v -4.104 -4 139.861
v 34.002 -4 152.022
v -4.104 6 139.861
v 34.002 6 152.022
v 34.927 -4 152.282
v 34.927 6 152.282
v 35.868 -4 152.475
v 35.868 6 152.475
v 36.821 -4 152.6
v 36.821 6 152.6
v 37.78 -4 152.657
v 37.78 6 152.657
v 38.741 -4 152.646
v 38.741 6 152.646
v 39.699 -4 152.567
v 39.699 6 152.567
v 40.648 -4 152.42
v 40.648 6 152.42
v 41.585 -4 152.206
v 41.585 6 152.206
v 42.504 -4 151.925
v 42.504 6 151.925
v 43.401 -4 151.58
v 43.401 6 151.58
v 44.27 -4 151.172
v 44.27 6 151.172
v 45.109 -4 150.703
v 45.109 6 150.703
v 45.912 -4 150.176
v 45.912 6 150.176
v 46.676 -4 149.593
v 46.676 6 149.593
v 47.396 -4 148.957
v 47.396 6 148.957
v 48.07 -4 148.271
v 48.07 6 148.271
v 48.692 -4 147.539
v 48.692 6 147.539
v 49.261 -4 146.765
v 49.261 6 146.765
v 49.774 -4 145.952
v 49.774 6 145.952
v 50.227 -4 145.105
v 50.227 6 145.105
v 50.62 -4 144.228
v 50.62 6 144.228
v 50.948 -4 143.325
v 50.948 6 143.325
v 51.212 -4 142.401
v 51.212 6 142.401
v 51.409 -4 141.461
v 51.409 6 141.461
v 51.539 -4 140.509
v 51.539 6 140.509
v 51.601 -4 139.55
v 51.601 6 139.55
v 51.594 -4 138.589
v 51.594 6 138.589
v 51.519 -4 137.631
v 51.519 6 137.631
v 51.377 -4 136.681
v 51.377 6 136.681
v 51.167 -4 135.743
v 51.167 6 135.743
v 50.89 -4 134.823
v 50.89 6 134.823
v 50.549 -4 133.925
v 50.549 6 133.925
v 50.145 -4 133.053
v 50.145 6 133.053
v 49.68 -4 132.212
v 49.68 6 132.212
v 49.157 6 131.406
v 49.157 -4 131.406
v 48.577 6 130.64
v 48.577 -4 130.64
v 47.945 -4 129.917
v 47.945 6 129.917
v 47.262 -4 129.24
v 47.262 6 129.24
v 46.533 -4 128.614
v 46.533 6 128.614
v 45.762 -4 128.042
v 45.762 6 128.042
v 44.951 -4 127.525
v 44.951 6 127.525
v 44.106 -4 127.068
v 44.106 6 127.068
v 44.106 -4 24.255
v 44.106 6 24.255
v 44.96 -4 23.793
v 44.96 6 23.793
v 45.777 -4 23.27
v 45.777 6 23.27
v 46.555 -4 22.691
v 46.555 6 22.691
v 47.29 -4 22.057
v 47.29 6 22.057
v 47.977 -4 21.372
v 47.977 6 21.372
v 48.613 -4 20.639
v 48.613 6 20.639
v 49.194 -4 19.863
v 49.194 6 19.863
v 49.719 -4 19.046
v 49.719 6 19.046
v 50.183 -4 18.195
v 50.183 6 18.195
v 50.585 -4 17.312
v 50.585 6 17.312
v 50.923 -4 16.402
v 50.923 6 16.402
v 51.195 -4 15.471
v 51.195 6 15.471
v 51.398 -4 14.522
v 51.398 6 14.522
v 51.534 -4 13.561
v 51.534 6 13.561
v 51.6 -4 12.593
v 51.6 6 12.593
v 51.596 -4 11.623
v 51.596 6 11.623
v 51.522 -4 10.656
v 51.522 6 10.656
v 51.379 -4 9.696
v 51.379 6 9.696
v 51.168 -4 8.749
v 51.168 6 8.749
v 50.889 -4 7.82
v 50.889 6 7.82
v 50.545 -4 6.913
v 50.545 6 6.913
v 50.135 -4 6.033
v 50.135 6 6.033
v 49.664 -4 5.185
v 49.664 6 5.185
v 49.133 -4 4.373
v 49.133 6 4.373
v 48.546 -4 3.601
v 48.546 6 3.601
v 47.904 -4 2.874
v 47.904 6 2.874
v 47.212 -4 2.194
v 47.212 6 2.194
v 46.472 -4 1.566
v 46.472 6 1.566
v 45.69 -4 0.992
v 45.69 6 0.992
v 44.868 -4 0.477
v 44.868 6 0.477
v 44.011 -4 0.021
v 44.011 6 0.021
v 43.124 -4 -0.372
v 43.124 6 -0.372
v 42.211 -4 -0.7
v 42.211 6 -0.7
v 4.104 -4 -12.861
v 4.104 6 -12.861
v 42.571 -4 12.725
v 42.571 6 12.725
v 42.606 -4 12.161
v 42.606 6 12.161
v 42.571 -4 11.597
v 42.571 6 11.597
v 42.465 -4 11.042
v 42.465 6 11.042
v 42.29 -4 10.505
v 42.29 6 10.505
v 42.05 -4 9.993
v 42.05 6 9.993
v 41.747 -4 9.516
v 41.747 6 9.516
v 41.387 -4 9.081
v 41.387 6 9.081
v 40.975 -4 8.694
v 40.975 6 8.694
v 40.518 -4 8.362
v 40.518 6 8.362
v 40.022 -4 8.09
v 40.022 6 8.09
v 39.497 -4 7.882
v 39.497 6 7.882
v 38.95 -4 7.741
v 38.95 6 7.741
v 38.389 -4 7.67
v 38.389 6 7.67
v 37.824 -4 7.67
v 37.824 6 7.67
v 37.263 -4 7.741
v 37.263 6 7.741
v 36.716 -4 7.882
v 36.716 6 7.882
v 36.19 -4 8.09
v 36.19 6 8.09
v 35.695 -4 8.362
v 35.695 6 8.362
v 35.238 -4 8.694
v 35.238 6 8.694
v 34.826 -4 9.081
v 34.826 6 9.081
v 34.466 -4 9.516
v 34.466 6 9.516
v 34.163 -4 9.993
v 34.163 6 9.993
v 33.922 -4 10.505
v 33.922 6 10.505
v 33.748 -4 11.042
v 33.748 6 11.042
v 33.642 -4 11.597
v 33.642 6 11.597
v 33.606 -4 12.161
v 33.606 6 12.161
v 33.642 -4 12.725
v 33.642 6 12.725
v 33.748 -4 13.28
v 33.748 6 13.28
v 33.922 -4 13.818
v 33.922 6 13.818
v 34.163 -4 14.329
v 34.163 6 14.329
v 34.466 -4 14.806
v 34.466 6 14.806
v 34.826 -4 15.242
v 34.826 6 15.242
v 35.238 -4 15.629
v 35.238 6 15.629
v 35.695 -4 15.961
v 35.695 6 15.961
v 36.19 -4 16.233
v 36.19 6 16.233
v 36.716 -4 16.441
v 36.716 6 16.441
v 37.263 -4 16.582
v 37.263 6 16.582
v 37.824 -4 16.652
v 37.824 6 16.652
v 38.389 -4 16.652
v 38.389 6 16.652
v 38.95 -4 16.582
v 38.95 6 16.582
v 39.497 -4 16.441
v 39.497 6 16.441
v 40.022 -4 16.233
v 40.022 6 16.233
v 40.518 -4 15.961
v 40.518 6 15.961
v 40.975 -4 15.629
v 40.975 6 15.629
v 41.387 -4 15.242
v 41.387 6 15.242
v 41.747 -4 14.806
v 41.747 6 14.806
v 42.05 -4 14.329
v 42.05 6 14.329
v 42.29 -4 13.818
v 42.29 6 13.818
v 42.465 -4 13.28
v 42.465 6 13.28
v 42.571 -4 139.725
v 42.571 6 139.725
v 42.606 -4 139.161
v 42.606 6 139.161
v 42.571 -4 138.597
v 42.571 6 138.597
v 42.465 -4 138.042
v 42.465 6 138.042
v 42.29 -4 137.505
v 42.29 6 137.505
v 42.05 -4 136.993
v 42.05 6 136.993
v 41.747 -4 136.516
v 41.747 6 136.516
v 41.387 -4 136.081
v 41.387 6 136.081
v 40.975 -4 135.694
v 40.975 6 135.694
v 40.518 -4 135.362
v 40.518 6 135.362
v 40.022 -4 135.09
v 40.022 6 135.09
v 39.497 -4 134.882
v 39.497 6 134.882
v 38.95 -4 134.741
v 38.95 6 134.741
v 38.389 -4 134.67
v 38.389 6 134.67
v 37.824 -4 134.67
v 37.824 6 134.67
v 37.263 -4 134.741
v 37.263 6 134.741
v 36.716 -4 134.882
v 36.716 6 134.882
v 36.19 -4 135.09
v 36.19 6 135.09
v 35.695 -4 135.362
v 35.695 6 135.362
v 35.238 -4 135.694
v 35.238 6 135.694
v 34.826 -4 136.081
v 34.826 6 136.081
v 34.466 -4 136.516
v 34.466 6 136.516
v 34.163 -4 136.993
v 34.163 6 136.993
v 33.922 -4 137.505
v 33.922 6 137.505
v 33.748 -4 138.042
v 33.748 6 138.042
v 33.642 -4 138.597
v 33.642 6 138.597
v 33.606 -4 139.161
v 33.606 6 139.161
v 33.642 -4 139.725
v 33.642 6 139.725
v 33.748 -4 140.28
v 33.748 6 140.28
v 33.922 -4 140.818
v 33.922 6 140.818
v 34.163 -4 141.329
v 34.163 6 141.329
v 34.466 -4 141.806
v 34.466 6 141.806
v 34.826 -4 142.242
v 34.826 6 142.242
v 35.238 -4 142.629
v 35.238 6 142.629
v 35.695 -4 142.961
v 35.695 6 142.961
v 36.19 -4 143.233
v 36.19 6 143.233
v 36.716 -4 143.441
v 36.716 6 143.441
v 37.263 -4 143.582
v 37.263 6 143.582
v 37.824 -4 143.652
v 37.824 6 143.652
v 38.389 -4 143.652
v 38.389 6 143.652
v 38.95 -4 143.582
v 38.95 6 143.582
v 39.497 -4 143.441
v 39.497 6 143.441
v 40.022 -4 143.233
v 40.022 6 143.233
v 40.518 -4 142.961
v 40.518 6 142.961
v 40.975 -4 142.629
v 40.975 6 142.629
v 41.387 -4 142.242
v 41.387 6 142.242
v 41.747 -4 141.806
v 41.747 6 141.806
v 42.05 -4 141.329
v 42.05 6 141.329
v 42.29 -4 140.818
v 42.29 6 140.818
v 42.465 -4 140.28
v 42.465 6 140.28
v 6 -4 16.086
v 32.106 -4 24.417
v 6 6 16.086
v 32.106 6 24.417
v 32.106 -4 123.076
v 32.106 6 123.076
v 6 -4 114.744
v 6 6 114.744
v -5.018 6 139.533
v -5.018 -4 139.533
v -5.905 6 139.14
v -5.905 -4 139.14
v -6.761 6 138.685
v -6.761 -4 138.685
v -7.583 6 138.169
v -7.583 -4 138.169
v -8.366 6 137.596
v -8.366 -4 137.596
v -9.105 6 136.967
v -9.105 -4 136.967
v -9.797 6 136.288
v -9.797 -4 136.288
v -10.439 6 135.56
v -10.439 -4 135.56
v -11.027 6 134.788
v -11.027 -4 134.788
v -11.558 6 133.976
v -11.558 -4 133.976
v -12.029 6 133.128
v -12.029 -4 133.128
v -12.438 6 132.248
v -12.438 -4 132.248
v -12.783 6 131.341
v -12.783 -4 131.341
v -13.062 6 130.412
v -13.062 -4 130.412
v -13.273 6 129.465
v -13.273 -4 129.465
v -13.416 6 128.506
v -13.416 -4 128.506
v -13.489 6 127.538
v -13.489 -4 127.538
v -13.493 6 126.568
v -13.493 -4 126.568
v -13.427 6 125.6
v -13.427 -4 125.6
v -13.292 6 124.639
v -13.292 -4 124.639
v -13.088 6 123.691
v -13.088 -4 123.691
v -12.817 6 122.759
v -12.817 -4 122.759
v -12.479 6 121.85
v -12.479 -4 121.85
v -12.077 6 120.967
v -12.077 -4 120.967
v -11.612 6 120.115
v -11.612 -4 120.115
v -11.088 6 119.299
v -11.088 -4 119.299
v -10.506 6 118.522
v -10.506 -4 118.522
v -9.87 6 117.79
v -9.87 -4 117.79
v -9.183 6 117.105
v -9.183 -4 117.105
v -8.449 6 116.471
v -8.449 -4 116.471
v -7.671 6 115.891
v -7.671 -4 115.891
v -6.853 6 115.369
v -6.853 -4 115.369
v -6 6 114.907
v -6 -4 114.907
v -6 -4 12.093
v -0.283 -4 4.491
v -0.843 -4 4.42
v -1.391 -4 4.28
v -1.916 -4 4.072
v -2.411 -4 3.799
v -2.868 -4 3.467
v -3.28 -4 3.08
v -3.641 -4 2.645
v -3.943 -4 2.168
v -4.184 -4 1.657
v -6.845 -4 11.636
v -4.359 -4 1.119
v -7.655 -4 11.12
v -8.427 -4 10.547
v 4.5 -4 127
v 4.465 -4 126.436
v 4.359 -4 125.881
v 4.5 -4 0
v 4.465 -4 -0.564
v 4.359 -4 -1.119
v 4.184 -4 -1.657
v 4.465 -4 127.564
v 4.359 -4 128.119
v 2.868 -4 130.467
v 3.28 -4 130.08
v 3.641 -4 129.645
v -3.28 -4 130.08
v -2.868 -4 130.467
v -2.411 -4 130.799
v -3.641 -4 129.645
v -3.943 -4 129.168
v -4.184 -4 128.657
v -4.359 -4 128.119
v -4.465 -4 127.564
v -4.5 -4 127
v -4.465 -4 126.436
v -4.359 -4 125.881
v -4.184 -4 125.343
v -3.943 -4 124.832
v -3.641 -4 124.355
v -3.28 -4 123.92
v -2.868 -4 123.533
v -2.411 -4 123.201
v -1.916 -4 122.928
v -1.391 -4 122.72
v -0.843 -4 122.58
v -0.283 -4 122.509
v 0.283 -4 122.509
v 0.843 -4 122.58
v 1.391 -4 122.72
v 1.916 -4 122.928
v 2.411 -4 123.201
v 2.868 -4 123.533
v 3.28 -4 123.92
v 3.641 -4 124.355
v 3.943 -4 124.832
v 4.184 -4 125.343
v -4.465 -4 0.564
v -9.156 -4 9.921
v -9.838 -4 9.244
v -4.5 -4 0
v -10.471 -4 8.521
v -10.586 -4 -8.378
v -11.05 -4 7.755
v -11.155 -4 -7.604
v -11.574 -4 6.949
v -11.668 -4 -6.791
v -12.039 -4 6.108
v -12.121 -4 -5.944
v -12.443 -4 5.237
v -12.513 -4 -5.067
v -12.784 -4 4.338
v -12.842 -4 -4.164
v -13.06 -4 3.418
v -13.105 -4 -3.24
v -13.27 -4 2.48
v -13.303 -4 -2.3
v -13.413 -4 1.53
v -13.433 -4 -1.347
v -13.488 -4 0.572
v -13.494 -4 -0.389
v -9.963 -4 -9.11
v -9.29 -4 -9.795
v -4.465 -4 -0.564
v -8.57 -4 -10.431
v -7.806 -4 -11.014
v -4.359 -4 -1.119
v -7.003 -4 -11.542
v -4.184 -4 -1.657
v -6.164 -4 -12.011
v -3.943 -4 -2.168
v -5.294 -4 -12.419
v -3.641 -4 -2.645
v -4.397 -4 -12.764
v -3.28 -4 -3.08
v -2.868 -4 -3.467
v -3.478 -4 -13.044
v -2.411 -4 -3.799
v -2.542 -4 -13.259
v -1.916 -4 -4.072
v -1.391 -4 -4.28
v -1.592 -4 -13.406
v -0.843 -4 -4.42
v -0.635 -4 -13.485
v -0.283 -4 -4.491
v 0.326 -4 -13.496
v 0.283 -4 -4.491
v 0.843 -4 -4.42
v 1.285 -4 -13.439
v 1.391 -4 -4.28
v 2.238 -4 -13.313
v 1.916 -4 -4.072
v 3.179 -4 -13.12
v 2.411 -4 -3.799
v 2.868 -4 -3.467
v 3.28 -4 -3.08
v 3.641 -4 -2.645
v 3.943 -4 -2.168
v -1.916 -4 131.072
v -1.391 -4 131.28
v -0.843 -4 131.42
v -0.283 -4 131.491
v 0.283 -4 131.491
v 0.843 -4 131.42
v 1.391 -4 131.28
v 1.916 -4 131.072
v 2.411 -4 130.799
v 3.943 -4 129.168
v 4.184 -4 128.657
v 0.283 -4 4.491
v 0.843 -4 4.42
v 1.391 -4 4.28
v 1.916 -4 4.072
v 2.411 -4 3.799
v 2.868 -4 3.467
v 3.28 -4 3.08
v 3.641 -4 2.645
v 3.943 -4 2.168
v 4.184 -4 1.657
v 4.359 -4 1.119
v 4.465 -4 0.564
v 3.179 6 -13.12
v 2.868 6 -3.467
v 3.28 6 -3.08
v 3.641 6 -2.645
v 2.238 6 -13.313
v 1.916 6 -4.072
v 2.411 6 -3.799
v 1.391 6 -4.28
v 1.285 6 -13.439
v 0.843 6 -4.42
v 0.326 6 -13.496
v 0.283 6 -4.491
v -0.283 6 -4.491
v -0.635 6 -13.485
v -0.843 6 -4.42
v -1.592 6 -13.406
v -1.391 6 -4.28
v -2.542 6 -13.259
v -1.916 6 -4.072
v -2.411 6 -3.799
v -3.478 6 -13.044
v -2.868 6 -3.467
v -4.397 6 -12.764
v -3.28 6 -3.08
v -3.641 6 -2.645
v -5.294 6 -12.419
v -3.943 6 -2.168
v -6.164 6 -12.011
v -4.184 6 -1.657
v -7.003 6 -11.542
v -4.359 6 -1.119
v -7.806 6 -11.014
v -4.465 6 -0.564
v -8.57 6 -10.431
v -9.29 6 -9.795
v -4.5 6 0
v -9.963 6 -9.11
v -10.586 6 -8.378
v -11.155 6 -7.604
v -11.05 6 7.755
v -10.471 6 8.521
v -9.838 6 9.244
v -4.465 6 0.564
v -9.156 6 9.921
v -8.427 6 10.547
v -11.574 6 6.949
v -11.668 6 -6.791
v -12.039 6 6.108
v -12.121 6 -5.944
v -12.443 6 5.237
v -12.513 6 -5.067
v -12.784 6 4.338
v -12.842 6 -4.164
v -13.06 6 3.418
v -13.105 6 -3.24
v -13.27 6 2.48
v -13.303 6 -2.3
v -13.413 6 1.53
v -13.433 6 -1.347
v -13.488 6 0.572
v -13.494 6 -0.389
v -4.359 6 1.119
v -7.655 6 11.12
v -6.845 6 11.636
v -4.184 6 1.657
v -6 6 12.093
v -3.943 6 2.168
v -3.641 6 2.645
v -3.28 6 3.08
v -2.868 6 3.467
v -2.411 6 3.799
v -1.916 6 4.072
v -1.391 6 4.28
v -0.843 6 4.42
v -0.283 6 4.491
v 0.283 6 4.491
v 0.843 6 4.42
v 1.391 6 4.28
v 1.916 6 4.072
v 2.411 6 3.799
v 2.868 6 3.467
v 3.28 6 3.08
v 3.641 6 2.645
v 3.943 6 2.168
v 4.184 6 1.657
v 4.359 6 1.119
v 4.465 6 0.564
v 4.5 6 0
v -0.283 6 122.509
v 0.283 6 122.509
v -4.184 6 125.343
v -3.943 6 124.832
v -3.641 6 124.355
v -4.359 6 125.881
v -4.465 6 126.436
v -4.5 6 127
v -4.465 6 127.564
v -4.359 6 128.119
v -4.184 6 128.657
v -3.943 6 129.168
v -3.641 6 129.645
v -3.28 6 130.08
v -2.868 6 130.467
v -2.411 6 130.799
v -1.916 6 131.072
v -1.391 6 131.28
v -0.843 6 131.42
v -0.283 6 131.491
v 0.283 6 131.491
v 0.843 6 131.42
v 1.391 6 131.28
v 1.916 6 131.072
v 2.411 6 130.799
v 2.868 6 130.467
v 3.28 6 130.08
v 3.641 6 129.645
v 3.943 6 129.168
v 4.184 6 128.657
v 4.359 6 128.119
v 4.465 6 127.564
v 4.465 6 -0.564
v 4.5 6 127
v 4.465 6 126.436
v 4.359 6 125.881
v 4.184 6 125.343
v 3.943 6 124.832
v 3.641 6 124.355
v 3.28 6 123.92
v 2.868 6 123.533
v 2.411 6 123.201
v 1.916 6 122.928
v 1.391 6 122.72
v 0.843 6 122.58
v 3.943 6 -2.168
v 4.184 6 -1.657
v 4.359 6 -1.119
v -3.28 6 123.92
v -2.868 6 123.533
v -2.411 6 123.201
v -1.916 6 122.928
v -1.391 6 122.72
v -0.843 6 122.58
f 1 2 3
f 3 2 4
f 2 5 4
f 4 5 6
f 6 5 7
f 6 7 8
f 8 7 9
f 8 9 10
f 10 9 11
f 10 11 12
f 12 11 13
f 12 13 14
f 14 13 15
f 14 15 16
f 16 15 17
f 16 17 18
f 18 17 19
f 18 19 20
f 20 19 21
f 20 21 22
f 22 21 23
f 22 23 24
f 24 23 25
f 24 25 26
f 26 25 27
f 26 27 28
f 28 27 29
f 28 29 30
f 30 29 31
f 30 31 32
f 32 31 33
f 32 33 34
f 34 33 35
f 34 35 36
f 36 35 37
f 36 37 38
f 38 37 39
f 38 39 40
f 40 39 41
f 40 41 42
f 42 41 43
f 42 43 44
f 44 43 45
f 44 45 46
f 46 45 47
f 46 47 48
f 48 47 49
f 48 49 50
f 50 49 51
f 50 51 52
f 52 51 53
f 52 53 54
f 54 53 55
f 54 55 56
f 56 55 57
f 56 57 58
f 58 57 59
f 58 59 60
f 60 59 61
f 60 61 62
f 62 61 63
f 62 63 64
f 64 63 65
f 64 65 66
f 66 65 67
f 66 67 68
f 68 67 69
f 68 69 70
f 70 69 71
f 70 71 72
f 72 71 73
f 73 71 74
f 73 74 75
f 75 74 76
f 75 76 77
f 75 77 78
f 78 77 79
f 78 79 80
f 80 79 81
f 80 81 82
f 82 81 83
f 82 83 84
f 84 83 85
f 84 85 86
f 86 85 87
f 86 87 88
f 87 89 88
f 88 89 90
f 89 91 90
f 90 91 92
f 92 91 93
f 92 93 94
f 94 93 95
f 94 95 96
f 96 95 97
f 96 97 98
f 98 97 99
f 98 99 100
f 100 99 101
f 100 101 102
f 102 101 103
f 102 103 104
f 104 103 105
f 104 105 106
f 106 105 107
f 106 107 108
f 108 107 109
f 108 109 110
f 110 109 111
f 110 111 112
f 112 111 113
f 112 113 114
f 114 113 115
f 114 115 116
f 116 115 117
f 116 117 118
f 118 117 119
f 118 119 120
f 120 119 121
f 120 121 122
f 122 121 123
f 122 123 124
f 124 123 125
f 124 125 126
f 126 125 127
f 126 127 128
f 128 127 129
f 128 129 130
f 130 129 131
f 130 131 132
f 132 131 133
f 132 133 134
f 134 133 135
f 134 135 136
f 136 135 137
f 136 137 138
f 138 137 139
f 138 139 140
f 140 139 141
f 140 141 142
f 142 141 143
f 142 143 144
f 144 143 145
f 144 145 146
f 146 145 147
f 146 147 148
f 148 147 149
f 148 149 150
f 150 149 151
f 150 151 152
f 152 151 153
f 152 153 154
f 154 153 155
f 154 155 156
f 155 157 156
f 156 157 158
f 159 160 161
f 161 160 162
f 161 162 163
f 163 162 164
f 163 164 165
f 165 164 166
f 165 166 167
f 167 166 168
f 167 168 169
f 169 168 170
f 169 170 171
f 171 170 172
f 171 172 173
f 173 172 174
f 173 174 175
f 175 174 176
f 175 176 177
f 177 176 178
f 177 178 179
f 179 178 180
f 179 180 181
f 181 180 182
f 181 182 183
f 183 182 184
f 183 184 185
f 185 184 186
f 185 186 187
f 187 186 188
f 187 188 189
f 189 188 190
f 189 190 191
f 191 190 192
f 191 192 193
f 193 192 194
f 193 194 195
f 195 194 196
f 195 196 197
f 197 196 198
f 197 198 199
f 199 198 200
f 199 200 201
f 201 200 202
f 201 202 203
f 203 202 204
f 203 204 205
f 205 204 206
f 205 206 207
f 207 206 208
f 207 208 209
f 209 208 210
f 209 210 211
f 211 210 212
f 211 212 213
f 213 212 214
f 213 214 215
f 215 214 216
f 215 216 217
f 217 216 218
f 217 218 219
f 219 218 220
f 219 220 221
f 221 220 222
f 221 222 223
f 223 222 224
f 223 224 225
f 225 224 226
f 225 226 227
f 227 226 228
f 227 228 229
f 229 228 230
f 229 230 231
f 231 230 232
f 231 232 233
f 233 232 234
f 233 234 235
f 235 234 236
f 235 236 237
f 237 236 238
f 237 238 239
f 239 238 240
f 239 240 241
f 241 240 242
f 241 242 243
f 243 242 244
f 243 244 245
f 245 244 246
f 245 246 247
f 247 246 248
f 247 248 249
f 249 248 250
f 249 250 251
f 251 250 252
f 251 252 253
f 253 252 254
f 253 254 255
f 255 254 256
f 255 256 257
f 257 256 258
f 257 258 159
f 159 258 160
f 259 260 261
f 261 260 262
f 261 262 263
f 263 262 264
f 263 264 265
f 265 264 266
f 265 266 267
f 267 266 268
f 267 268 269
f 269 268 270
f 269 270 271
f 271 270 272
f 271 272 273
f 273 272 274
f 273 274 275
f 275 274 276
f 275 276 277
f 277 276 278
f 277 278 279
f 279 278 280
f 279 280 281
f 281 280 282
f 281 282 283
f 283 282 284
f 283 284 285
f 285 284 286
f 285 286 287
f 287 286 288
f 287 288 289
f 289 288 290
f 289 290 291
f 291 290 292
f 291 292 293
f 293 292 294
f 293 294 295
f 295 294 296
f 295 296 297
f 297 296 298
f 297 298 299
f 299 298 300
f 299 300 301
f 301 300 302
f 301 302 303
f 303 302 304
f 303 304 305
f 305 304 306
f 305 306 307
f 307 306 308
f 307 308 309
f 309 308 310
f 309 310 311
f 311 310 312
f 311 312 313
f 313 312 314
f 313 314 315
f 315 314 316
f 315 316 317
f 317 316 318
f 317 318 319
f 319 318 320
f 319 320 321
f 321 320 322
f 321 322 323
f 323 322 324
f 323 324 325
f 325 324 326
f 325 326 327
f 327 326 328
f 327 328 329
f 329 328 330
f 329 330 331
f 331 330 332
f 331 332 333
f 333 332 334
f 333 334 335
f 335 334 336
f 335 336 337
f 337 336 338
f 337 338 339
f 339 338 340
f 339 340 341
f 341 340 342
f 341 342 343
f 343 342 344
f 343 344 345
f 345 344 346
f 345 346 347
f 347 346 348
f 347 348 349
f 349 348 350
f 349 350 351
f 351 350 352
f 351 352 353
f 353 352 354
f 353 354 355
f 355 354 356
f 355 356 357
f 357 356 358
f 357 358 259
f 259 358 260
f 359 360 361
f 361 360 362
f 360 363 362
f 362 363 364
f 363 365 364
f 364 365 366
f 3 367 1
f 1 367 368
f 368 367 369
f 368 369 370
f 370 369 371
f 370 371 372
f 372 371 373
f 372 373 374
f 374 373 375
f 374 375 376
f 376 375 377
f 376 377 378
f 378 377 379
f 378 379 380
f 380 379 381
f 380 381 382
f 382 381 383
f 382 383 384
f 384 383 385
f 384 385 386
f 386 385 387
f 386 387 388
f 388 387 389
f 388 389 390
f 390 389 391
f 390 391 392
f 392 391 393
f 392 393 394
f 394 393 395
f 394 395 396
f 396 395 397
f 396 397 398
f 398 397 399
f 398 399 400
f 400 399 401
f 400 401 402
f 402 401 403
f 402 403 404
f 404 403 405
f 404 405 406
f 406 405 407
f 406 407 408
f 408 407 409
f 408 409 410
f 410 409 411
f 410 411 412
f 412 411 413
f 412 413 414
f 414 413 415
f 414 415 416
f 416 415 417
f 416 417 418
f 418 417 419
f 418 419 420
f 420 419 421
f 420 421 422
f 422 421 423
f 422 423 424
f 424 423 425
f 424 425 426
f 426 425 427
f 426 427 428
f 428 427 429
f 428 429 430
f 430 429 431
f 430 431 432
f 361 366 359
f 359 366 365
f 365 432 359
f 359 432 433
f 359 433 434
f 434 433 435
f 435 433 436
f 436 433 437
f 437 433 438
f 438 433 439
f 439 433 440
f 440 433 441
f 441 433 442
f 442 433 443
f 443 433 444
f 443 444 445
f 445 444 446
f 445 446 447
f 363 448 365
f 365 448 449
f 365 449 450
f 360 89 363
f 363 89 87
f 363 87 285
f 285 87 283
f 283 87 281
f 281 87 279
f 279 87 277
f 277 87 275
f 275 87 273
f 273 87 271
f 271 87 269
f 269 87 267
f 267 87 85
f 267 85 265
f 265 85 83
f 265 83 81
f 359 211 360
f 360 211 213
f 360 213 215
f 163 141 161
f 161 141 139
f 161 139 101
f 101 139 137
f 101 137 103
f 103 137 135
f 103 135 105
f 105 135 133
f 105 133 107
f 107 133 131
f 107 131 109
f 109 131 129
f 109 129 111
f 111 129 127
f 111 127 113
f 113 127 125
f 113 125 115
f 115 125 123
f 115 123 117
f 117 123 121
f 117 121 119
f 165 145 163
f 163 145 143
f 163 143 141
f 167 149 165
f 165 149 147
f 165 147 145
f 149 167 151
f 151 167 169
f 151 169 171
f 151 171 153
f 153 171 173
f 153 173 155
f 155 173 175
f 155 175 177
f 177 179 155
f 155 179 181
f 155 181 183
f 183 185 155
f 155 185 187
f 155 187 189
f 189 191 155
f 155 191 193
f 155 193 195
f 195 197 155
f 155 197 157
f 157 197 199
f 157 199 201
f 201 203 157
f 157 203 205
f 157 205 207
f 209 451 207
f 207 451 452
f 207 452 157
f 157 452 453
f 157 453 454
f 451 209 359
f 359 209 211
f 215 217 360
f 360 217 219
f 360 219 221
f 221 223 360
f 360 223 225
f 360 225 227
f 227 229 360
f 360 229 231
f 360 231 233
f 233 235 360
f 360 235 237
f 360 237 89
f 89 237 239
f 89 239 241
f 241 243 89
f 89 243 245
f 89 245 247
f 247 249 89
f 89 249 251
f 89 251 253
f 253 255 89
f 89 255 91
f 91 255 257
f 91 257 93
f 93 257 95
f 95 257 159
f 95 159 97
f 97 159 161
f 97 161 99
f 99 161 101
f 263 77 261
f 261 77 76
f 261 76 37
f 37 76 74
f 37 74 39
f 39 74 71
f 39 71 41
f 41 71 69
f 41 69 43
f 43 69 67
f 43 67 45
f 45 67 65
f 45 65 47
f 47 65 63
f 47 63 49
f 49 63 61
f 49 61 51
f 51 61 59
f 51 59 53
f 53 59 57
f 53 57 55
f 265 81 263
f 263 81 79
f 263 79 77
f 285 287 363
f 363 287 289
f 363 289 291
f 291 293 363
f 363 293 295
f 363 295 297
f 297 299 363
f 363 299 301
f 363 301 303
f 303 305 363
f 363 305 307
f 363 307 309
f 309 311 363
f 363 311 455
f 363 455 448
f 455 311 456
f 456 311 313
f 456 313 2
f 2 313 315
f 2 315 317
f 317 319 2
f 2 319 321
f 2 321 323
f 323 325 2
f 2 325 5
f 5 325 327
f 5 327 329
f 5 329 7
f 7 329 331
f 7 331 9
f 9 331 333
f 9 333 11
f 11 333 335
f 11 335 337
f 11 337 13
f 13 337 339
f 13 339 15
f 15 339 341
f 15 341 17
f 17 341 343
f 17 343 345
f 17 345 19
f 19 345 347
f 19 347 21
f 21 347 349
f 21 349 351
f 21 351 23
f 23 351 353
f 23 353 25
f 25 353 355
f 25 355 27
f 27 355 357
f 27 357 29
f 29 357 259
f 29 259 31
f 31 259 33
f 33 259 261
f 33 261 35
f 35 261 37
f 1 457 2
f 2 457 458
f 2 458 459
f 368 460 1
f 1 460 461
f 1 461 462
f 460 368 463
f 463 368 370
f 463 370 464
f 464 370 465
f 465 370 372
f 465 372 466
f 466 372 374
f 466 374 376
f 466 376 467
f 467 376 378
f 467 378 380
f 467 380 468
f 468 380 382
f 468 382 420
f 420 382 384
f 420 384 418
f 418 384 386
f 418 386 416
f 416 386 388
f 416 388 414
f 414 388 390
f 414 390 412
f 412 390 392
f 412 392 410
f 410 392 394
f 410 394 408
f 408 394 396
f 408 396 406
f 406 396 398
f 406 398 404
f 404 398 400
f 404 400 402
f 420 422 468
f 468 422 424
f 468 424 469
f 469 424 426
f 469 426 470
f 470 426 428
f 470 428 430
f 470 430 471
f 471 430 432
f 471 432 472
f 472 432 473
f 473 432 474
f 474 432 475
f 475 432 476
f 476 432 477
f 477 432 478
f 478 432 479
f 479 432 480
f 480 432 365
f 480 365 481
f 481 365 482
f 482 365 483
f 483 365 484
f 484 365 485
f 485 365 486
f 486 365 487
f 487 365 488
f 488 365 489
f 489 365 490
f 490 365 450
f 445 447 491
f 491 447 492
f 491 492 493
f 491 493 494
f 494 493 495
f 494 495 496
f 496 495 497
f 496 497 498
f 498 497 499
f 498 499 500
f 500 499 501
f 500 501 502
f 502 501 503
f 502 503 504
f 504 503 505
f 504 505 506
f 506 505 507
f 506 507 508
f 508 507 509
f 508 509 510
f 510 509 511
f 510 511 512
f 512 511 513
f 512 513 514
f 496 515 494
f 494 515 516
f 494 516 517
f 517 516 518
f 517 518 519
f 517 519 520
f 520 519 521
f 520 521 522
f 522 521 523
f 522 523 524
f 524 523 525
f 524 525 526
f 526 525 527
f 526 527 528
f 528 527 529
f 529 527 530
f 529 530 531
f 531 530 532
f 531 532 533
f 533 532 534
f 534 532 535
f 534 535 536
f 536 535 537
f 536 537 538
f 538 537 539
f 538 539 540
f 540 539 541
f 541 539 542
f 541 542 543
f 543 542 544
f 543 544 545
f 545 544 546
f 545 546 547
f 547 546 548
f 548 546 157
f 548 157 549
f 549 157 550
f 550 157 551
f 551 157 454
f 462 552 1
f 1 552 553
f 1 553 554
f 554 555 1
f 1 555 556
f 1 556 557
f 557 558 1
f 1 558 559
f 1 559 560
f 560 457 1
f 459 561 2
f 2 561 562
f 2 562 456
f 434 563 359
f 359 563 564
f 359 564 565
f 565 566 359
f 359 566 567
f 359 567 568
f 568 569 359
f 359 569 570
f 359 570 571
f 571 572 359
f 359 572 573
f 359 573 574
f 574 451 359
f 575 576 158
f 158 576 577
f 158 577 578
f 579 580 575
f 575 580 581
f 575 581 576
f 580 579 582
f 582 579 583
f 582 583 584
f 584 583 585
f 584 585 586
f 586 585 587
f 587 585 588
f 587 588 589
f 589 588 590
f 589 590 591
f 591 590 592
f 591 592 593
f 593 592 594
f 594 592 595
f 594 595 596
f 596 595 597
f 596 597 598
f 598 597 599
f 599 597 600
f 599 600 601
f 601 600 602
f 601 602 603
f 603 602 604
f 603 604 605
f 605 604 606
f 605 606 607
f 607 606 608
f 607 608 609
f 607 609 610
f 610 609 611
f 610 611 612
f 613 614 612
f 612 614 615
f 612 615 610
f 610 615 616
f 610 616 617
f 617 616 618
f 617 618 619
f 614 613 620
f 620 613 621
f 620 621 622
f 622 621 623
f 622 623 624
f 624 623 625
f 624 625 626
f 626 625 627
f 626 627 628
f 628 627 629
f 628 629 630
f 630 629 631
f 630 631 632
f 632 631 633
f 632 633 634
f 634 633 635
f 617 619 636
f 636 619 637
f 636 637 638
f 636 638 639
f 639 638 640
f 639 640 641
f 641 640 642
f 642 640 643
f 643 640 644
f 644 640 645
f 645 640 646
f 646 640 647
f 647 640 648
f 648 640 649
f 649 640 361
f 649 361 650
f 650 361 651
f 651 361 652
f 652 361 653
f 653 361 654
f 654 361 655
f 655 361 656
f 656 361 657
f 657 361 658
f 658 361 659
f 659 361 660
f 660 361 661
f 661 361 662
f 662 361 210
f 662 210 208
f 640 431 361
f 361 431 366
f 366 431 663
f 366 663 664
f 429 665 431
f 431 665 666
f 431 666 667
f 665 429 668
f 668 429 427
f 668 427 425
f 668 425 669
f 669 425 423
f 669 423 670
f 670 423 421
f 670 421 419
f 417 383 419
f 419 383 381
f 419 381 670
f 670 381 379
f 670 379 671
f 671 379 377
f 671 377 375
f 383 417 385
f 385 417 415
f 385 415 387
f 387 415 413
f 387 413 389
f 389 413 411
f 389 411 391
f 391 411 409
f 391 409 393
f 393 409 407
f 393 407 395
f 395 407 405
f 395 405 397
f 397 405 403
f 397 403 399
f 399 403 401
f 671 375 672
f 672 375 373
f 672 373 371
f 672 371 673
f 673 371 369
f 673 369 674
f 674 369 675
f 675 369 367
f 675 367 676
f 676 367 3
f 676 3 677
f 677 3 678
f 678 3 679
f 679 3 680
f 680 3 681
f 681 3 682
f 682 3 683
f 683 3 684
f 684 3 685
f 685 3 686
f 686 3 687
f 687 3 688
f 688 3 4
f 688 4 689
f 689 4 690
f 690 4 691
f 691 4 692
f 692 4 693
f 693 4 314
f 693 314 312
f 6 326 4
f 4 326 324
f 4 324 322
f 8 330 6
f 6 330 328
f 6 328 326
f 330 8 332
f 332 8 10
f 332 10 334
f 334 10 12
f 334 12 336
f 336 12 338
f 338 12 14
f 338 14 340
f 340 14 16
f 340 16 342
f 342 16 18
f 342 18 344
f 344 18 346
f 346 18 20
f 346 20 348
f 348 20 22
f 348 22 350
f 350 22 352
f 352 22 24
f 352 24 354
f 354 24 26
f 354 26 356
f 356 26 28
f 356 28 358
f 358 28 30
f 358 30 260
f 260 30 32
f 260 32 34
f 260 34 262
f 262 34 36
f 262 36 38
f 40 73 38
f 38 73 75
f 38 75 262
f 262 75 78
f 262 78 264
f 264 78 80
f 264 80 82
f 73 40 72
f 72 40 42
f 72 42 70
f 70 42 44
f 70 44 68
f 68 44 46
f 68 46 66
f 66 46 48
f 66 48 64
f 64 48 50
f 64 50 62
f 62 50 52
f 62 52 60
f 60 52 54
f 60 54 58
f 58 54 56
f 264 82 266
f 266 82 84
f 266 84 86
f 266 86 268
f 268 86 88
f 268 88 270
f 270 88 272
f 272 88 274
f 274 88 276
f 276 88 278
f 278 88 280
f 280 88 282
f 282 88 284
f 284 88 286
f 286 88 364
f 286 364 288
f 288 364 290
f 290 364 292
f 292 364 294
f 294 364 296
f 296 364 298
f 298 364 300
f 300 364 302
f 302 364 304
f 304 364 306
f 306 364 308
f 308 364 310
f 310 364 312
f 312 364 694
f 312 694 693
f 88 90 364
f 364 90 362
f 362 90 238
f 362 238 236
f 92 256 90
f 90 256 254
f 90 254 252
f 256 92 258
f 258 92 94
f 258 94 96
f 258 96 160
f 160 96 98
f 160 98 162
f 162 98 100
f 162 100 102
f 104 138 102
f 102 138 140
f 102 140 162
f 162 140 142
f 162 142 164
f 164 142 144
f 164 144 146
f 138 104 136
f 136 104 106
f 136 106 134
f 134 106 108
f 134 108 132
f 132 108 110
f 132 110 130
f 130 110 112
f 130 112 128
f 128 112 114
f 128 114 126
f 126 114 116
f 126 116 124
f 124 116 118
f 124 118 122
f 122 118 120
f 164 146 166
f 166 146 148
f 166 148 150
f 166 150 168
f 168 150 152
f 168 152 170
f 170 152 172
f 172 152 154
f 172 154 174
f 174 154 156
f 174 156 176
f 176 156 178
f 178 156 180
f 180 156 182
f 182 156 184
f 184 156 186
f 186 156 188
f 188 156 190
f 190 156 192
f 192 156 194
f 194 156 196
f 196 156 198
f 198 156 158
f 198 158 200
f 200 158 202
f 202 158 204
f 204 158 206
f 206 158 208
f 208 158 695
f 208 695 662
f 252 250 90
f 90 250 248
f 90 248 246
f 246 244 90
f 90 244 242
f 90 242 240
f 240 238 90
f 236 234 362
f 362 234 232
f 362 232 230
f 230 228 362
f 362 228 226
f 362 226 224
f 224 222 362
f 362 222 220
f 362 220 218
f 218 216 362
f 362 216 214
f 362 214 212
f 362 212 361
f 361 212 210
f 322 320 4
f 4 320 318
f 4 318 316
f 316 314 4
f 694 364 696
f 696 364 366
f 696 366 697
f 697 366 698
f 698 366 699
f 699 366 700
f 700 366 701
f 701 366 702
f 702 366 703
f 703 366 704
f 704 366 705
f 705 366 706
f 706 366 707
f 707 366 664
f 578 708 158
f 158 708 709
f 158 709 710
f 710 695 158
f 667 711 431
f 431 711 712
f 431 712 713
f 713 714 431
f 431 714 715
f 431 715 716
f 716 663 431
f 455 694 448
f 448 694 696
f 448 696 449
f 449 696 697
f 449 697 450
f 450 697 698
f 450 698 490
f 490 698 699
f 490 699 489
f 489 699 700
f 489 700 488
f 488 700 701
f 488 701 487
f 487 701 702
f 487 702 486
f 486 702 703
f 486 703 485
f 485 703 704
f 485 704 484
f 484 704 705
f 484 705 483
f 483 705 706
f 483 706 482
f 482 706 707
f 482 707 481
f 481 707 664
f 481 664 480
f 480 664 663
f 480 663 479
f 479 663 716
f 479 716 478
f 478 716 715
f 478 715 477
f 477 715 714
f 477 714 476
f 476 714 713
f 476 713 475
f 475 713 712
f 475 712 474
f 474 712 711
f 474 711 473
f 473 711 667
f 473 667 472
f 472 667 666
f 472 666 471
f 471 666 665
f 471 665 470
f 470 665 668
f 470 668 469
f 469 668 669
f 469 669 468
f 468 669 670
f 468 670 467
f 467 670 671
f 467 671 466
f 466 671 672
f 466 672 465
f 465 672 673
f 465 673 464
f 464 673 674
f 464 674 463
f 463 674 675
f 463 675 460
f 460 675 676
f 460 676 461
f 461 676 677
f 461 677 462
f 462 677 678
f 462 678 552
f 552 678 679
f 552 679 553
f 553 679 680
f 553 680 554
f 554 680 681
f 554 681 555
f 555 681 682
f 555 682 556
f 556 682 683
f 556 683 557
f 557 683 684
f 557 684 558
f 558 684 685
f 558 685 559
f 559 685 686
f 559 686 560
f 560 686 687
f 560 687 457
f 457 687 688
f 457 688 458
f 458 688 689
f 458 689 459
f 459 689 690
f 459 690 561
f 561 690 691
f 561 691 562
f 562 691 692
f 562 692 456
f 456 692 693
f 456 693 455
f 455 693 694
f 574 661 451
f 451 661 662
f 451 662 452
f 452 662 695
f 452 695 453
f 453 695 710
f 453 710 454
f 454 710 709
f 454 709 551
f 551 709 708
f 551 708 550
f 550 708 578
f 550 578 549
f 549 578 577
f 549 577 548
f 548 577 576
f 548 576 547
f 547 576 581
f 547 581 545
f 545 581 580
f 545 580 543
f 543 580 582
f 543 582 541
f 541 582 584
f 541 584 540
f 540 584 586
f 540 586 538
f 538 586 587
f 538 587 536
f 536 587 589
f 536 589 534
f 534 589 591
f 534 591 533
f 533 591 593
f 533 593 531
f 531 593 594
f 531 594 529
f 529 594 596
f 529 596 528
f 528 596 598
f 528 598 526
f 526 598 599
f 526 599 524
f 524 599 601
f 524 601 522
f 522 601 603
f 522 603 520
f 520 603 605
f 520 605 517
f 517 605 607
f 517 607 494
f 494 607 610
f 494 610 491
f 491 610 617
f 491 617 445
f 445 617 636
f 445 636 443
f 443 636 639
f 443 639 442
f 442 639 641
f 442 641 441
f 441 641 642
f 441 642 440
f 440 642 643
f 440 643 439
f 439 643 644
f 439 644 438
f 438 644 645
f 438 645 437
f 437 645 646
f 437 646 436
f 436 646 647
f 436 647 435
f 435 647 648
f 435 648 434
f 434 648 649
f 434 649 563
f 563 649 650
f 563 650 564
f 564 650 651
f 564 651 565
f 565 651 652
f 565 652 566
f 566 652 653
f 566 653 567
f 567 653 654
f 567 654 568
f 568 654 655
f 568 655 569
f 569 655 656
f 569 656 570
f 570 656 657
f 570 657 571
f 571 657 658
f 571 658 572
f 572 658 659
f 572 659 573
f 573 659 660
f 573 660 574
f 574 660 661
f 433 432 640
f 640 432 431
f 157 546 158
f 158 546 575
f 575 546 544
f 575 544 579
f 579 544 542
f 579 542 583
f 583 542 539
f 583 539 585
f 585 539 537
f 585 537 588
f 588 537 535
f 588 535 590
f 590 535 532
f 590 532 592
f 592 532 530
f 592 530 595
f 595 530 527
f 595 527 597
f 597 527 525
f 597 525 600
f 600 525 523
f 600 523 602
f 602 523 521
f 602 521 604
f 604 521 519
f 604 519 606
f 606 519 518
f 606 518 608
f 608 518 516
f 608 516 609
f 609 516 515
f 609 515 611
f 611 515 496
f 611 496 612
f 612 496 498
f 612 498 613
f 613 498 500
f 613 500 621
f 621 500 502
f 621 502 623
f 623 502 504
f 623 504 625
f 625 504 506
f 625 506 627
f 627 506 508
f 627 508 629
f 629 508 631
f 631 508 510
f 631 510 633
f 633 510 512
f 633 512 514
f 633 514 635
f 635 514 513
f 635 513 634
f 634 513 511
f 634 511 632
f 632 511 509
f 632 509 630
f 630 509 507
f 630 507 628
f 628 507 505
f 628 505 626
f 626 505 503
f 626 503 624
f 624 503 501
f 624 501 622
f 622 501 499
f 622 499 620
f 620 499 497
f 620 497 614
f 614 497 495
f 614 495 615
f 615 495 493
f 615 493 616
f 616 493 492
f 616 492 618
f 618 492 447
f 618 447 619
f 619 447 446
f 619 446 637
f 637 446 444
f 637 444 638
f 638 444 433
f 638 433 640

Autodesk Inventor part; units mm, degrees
ref_plane "YZ Plane" through (0, 0, 0) normal (1, 0, 0) x (0, 1, 0)
ref_plane "XZ Plane" through (0, 0, 0) normal (0, 1, 0) x (-1, 0, 0)
ref_plane "XY Plane" through (0, 0, 0) normal (0, 0, 1) x (1, 0, 0)
sketch "Sketch1" plane through (0, 0, 0) normal (0, 1, 0) x (-1, 0, 0)
  circle A0 centre (0, 0) radius 11
  arc A1 (-6, 12.0934) -> (6, 12.0934) centre (0, 0) ccw
  line L0 (-6, 13.5) -> (-6, 113.5)
  line L1 (6, 113.5) -> (6, 13.5)
  line L2 (6, 12.0934) -> (6, 13.5)
  line L3 (-6, 13.5) -> (-6, 12.0934)
  arc A2 (6, 114.9066) -> (-6, 114.9066) centre (0, 127) ccw
  circle A3 centre (0, 127) radius 11
  line L4 (6, 113.5) -> (6, 114.9066)
  line L5 (-6, 113.5) -> (-6, 114.9066)
  circle A4 centre (0, 127) radius 4.5
  circle A5 centre (0, 0) radius 4.5
  dimension "d0" = 22
  dimension "d4" = 100
  dimension "d7" = 9
  dimension "d8" = 9
extrude "Extrusion1" add sketch "Sketch1" against normal blind 3 contours A0 | L3 L0 L5 A2 L4 L1 L2 A1 | A3
extrude "Extrusion2" add sketch "Sketch1" along normal blind 6 contours A0 | L3 L0 L5 A2 L4 L1 L2 A1 | A3
sketch "Sketch2" plane through (0, -3, 0) normal (0, -1, 0) x (1, 0, 0)
  arc A0 (-6, 12.0934) -> (6, 12.0934) centre (0, 0) ccw projected
  line L0 (6, 12.0934) -> (6, 114.9066) projected
  arc A1 (6, 114.9066) -> (-6, 114.9066) centre (0, 127) ccw projected
  line L1 (-6, 114.9066) -> (-6, 12.0934) projected
  circle A2 centre (0, 0) radius 4.5 projected
  circle A3 centre (0, 127) radius 4.5 projected
extrude "Extrusion3" add sketch "Sketch2" along normal blind 1
sketch "Sketch4" plane through (0, 6, 0) normal (0, 1, 0) x (1, 0, 0)
  line L0 (-6, -12.0934) -> (-6, -114.9066) projected
  line L1 (-6, -63.5) -> (6, -63.5)
  line L2 (6, -114.9066) -> (6, -12.0934) projected
  circle A0 centre (0, -63.5) radius 1.45
  point P0 (0, 0)
  dimension "d17" = 2.9
extrude "Extrusion5" cut sketch "Sketch4" against normal up to surface (10 mm away)
sketch "Sketch5" plane through (0, 6, 0) normal (0, 1, 0) x (1, 0, 0)
  arc A0 (6, -12.0934) -> (-6, -12.0934) centre (0, 0) ccw projected
  arc A1 (44.1065, -24.2547) -> (42.2109, 0.6996) centre (38.1065, -12.1613) ccw
  arc A2 (34.002, -152.0223) -> (44.1065, -127.0679) centre (38.1065, -139.1613) ccw
  circle A3 centre (38.1065, -139.1613) radius 4.5
  circle A4 centre (38.1065, -12.1613) radius 4.5
  arc A5 (-6, -114.9066) -> (6, -114.9066) centre (0, -127) ccw projected
  line L0 (44.1065, -105.6324) -> (44.1065, -127.0679)
  line L1 (32.1065, -105.6324) -> (32.1065, -123.0757)
  line L2 (44.1065, -105.6324) -> (44.1065, -24.2547)
  line L3 (32.1065, -105.6324) -> (32.1065, -24.2547)
  line L4 (-4.1044, -139.8609) -> (35.9659, -152.649)
  line L5 (6, -114.744) -> (32.1065, -123.0757)
  line L6 (6, -114.9066) -> (6, -12.0934) projected
  line L7 (6, -16.0857) -> (34.002, -25.0223)
  line L8 (4.1044, 12.8609) -> (42.2109, 0.6996)
  point P0 (32.1065, -24.4173)
extrude "Extrusion6" add sketch "Sketch5" against normal up to surface (10 mm away) contours A0 L8 A1 L2 L0 A2 L4 A5 L6 L5 L1 L3 L7
sketch "Sketch6" plane through (0, 6, 0) normal (0, 1, 0) x (1, 0, 0)
  circle A0 centre (0, -63.5) radius 1.45 projected
  point P0 (0, 0)
extrude "Extrusion7" add sketch "Sketch6" against normal up to surface (10 mm away)
properties part number "damping_system_connector"
